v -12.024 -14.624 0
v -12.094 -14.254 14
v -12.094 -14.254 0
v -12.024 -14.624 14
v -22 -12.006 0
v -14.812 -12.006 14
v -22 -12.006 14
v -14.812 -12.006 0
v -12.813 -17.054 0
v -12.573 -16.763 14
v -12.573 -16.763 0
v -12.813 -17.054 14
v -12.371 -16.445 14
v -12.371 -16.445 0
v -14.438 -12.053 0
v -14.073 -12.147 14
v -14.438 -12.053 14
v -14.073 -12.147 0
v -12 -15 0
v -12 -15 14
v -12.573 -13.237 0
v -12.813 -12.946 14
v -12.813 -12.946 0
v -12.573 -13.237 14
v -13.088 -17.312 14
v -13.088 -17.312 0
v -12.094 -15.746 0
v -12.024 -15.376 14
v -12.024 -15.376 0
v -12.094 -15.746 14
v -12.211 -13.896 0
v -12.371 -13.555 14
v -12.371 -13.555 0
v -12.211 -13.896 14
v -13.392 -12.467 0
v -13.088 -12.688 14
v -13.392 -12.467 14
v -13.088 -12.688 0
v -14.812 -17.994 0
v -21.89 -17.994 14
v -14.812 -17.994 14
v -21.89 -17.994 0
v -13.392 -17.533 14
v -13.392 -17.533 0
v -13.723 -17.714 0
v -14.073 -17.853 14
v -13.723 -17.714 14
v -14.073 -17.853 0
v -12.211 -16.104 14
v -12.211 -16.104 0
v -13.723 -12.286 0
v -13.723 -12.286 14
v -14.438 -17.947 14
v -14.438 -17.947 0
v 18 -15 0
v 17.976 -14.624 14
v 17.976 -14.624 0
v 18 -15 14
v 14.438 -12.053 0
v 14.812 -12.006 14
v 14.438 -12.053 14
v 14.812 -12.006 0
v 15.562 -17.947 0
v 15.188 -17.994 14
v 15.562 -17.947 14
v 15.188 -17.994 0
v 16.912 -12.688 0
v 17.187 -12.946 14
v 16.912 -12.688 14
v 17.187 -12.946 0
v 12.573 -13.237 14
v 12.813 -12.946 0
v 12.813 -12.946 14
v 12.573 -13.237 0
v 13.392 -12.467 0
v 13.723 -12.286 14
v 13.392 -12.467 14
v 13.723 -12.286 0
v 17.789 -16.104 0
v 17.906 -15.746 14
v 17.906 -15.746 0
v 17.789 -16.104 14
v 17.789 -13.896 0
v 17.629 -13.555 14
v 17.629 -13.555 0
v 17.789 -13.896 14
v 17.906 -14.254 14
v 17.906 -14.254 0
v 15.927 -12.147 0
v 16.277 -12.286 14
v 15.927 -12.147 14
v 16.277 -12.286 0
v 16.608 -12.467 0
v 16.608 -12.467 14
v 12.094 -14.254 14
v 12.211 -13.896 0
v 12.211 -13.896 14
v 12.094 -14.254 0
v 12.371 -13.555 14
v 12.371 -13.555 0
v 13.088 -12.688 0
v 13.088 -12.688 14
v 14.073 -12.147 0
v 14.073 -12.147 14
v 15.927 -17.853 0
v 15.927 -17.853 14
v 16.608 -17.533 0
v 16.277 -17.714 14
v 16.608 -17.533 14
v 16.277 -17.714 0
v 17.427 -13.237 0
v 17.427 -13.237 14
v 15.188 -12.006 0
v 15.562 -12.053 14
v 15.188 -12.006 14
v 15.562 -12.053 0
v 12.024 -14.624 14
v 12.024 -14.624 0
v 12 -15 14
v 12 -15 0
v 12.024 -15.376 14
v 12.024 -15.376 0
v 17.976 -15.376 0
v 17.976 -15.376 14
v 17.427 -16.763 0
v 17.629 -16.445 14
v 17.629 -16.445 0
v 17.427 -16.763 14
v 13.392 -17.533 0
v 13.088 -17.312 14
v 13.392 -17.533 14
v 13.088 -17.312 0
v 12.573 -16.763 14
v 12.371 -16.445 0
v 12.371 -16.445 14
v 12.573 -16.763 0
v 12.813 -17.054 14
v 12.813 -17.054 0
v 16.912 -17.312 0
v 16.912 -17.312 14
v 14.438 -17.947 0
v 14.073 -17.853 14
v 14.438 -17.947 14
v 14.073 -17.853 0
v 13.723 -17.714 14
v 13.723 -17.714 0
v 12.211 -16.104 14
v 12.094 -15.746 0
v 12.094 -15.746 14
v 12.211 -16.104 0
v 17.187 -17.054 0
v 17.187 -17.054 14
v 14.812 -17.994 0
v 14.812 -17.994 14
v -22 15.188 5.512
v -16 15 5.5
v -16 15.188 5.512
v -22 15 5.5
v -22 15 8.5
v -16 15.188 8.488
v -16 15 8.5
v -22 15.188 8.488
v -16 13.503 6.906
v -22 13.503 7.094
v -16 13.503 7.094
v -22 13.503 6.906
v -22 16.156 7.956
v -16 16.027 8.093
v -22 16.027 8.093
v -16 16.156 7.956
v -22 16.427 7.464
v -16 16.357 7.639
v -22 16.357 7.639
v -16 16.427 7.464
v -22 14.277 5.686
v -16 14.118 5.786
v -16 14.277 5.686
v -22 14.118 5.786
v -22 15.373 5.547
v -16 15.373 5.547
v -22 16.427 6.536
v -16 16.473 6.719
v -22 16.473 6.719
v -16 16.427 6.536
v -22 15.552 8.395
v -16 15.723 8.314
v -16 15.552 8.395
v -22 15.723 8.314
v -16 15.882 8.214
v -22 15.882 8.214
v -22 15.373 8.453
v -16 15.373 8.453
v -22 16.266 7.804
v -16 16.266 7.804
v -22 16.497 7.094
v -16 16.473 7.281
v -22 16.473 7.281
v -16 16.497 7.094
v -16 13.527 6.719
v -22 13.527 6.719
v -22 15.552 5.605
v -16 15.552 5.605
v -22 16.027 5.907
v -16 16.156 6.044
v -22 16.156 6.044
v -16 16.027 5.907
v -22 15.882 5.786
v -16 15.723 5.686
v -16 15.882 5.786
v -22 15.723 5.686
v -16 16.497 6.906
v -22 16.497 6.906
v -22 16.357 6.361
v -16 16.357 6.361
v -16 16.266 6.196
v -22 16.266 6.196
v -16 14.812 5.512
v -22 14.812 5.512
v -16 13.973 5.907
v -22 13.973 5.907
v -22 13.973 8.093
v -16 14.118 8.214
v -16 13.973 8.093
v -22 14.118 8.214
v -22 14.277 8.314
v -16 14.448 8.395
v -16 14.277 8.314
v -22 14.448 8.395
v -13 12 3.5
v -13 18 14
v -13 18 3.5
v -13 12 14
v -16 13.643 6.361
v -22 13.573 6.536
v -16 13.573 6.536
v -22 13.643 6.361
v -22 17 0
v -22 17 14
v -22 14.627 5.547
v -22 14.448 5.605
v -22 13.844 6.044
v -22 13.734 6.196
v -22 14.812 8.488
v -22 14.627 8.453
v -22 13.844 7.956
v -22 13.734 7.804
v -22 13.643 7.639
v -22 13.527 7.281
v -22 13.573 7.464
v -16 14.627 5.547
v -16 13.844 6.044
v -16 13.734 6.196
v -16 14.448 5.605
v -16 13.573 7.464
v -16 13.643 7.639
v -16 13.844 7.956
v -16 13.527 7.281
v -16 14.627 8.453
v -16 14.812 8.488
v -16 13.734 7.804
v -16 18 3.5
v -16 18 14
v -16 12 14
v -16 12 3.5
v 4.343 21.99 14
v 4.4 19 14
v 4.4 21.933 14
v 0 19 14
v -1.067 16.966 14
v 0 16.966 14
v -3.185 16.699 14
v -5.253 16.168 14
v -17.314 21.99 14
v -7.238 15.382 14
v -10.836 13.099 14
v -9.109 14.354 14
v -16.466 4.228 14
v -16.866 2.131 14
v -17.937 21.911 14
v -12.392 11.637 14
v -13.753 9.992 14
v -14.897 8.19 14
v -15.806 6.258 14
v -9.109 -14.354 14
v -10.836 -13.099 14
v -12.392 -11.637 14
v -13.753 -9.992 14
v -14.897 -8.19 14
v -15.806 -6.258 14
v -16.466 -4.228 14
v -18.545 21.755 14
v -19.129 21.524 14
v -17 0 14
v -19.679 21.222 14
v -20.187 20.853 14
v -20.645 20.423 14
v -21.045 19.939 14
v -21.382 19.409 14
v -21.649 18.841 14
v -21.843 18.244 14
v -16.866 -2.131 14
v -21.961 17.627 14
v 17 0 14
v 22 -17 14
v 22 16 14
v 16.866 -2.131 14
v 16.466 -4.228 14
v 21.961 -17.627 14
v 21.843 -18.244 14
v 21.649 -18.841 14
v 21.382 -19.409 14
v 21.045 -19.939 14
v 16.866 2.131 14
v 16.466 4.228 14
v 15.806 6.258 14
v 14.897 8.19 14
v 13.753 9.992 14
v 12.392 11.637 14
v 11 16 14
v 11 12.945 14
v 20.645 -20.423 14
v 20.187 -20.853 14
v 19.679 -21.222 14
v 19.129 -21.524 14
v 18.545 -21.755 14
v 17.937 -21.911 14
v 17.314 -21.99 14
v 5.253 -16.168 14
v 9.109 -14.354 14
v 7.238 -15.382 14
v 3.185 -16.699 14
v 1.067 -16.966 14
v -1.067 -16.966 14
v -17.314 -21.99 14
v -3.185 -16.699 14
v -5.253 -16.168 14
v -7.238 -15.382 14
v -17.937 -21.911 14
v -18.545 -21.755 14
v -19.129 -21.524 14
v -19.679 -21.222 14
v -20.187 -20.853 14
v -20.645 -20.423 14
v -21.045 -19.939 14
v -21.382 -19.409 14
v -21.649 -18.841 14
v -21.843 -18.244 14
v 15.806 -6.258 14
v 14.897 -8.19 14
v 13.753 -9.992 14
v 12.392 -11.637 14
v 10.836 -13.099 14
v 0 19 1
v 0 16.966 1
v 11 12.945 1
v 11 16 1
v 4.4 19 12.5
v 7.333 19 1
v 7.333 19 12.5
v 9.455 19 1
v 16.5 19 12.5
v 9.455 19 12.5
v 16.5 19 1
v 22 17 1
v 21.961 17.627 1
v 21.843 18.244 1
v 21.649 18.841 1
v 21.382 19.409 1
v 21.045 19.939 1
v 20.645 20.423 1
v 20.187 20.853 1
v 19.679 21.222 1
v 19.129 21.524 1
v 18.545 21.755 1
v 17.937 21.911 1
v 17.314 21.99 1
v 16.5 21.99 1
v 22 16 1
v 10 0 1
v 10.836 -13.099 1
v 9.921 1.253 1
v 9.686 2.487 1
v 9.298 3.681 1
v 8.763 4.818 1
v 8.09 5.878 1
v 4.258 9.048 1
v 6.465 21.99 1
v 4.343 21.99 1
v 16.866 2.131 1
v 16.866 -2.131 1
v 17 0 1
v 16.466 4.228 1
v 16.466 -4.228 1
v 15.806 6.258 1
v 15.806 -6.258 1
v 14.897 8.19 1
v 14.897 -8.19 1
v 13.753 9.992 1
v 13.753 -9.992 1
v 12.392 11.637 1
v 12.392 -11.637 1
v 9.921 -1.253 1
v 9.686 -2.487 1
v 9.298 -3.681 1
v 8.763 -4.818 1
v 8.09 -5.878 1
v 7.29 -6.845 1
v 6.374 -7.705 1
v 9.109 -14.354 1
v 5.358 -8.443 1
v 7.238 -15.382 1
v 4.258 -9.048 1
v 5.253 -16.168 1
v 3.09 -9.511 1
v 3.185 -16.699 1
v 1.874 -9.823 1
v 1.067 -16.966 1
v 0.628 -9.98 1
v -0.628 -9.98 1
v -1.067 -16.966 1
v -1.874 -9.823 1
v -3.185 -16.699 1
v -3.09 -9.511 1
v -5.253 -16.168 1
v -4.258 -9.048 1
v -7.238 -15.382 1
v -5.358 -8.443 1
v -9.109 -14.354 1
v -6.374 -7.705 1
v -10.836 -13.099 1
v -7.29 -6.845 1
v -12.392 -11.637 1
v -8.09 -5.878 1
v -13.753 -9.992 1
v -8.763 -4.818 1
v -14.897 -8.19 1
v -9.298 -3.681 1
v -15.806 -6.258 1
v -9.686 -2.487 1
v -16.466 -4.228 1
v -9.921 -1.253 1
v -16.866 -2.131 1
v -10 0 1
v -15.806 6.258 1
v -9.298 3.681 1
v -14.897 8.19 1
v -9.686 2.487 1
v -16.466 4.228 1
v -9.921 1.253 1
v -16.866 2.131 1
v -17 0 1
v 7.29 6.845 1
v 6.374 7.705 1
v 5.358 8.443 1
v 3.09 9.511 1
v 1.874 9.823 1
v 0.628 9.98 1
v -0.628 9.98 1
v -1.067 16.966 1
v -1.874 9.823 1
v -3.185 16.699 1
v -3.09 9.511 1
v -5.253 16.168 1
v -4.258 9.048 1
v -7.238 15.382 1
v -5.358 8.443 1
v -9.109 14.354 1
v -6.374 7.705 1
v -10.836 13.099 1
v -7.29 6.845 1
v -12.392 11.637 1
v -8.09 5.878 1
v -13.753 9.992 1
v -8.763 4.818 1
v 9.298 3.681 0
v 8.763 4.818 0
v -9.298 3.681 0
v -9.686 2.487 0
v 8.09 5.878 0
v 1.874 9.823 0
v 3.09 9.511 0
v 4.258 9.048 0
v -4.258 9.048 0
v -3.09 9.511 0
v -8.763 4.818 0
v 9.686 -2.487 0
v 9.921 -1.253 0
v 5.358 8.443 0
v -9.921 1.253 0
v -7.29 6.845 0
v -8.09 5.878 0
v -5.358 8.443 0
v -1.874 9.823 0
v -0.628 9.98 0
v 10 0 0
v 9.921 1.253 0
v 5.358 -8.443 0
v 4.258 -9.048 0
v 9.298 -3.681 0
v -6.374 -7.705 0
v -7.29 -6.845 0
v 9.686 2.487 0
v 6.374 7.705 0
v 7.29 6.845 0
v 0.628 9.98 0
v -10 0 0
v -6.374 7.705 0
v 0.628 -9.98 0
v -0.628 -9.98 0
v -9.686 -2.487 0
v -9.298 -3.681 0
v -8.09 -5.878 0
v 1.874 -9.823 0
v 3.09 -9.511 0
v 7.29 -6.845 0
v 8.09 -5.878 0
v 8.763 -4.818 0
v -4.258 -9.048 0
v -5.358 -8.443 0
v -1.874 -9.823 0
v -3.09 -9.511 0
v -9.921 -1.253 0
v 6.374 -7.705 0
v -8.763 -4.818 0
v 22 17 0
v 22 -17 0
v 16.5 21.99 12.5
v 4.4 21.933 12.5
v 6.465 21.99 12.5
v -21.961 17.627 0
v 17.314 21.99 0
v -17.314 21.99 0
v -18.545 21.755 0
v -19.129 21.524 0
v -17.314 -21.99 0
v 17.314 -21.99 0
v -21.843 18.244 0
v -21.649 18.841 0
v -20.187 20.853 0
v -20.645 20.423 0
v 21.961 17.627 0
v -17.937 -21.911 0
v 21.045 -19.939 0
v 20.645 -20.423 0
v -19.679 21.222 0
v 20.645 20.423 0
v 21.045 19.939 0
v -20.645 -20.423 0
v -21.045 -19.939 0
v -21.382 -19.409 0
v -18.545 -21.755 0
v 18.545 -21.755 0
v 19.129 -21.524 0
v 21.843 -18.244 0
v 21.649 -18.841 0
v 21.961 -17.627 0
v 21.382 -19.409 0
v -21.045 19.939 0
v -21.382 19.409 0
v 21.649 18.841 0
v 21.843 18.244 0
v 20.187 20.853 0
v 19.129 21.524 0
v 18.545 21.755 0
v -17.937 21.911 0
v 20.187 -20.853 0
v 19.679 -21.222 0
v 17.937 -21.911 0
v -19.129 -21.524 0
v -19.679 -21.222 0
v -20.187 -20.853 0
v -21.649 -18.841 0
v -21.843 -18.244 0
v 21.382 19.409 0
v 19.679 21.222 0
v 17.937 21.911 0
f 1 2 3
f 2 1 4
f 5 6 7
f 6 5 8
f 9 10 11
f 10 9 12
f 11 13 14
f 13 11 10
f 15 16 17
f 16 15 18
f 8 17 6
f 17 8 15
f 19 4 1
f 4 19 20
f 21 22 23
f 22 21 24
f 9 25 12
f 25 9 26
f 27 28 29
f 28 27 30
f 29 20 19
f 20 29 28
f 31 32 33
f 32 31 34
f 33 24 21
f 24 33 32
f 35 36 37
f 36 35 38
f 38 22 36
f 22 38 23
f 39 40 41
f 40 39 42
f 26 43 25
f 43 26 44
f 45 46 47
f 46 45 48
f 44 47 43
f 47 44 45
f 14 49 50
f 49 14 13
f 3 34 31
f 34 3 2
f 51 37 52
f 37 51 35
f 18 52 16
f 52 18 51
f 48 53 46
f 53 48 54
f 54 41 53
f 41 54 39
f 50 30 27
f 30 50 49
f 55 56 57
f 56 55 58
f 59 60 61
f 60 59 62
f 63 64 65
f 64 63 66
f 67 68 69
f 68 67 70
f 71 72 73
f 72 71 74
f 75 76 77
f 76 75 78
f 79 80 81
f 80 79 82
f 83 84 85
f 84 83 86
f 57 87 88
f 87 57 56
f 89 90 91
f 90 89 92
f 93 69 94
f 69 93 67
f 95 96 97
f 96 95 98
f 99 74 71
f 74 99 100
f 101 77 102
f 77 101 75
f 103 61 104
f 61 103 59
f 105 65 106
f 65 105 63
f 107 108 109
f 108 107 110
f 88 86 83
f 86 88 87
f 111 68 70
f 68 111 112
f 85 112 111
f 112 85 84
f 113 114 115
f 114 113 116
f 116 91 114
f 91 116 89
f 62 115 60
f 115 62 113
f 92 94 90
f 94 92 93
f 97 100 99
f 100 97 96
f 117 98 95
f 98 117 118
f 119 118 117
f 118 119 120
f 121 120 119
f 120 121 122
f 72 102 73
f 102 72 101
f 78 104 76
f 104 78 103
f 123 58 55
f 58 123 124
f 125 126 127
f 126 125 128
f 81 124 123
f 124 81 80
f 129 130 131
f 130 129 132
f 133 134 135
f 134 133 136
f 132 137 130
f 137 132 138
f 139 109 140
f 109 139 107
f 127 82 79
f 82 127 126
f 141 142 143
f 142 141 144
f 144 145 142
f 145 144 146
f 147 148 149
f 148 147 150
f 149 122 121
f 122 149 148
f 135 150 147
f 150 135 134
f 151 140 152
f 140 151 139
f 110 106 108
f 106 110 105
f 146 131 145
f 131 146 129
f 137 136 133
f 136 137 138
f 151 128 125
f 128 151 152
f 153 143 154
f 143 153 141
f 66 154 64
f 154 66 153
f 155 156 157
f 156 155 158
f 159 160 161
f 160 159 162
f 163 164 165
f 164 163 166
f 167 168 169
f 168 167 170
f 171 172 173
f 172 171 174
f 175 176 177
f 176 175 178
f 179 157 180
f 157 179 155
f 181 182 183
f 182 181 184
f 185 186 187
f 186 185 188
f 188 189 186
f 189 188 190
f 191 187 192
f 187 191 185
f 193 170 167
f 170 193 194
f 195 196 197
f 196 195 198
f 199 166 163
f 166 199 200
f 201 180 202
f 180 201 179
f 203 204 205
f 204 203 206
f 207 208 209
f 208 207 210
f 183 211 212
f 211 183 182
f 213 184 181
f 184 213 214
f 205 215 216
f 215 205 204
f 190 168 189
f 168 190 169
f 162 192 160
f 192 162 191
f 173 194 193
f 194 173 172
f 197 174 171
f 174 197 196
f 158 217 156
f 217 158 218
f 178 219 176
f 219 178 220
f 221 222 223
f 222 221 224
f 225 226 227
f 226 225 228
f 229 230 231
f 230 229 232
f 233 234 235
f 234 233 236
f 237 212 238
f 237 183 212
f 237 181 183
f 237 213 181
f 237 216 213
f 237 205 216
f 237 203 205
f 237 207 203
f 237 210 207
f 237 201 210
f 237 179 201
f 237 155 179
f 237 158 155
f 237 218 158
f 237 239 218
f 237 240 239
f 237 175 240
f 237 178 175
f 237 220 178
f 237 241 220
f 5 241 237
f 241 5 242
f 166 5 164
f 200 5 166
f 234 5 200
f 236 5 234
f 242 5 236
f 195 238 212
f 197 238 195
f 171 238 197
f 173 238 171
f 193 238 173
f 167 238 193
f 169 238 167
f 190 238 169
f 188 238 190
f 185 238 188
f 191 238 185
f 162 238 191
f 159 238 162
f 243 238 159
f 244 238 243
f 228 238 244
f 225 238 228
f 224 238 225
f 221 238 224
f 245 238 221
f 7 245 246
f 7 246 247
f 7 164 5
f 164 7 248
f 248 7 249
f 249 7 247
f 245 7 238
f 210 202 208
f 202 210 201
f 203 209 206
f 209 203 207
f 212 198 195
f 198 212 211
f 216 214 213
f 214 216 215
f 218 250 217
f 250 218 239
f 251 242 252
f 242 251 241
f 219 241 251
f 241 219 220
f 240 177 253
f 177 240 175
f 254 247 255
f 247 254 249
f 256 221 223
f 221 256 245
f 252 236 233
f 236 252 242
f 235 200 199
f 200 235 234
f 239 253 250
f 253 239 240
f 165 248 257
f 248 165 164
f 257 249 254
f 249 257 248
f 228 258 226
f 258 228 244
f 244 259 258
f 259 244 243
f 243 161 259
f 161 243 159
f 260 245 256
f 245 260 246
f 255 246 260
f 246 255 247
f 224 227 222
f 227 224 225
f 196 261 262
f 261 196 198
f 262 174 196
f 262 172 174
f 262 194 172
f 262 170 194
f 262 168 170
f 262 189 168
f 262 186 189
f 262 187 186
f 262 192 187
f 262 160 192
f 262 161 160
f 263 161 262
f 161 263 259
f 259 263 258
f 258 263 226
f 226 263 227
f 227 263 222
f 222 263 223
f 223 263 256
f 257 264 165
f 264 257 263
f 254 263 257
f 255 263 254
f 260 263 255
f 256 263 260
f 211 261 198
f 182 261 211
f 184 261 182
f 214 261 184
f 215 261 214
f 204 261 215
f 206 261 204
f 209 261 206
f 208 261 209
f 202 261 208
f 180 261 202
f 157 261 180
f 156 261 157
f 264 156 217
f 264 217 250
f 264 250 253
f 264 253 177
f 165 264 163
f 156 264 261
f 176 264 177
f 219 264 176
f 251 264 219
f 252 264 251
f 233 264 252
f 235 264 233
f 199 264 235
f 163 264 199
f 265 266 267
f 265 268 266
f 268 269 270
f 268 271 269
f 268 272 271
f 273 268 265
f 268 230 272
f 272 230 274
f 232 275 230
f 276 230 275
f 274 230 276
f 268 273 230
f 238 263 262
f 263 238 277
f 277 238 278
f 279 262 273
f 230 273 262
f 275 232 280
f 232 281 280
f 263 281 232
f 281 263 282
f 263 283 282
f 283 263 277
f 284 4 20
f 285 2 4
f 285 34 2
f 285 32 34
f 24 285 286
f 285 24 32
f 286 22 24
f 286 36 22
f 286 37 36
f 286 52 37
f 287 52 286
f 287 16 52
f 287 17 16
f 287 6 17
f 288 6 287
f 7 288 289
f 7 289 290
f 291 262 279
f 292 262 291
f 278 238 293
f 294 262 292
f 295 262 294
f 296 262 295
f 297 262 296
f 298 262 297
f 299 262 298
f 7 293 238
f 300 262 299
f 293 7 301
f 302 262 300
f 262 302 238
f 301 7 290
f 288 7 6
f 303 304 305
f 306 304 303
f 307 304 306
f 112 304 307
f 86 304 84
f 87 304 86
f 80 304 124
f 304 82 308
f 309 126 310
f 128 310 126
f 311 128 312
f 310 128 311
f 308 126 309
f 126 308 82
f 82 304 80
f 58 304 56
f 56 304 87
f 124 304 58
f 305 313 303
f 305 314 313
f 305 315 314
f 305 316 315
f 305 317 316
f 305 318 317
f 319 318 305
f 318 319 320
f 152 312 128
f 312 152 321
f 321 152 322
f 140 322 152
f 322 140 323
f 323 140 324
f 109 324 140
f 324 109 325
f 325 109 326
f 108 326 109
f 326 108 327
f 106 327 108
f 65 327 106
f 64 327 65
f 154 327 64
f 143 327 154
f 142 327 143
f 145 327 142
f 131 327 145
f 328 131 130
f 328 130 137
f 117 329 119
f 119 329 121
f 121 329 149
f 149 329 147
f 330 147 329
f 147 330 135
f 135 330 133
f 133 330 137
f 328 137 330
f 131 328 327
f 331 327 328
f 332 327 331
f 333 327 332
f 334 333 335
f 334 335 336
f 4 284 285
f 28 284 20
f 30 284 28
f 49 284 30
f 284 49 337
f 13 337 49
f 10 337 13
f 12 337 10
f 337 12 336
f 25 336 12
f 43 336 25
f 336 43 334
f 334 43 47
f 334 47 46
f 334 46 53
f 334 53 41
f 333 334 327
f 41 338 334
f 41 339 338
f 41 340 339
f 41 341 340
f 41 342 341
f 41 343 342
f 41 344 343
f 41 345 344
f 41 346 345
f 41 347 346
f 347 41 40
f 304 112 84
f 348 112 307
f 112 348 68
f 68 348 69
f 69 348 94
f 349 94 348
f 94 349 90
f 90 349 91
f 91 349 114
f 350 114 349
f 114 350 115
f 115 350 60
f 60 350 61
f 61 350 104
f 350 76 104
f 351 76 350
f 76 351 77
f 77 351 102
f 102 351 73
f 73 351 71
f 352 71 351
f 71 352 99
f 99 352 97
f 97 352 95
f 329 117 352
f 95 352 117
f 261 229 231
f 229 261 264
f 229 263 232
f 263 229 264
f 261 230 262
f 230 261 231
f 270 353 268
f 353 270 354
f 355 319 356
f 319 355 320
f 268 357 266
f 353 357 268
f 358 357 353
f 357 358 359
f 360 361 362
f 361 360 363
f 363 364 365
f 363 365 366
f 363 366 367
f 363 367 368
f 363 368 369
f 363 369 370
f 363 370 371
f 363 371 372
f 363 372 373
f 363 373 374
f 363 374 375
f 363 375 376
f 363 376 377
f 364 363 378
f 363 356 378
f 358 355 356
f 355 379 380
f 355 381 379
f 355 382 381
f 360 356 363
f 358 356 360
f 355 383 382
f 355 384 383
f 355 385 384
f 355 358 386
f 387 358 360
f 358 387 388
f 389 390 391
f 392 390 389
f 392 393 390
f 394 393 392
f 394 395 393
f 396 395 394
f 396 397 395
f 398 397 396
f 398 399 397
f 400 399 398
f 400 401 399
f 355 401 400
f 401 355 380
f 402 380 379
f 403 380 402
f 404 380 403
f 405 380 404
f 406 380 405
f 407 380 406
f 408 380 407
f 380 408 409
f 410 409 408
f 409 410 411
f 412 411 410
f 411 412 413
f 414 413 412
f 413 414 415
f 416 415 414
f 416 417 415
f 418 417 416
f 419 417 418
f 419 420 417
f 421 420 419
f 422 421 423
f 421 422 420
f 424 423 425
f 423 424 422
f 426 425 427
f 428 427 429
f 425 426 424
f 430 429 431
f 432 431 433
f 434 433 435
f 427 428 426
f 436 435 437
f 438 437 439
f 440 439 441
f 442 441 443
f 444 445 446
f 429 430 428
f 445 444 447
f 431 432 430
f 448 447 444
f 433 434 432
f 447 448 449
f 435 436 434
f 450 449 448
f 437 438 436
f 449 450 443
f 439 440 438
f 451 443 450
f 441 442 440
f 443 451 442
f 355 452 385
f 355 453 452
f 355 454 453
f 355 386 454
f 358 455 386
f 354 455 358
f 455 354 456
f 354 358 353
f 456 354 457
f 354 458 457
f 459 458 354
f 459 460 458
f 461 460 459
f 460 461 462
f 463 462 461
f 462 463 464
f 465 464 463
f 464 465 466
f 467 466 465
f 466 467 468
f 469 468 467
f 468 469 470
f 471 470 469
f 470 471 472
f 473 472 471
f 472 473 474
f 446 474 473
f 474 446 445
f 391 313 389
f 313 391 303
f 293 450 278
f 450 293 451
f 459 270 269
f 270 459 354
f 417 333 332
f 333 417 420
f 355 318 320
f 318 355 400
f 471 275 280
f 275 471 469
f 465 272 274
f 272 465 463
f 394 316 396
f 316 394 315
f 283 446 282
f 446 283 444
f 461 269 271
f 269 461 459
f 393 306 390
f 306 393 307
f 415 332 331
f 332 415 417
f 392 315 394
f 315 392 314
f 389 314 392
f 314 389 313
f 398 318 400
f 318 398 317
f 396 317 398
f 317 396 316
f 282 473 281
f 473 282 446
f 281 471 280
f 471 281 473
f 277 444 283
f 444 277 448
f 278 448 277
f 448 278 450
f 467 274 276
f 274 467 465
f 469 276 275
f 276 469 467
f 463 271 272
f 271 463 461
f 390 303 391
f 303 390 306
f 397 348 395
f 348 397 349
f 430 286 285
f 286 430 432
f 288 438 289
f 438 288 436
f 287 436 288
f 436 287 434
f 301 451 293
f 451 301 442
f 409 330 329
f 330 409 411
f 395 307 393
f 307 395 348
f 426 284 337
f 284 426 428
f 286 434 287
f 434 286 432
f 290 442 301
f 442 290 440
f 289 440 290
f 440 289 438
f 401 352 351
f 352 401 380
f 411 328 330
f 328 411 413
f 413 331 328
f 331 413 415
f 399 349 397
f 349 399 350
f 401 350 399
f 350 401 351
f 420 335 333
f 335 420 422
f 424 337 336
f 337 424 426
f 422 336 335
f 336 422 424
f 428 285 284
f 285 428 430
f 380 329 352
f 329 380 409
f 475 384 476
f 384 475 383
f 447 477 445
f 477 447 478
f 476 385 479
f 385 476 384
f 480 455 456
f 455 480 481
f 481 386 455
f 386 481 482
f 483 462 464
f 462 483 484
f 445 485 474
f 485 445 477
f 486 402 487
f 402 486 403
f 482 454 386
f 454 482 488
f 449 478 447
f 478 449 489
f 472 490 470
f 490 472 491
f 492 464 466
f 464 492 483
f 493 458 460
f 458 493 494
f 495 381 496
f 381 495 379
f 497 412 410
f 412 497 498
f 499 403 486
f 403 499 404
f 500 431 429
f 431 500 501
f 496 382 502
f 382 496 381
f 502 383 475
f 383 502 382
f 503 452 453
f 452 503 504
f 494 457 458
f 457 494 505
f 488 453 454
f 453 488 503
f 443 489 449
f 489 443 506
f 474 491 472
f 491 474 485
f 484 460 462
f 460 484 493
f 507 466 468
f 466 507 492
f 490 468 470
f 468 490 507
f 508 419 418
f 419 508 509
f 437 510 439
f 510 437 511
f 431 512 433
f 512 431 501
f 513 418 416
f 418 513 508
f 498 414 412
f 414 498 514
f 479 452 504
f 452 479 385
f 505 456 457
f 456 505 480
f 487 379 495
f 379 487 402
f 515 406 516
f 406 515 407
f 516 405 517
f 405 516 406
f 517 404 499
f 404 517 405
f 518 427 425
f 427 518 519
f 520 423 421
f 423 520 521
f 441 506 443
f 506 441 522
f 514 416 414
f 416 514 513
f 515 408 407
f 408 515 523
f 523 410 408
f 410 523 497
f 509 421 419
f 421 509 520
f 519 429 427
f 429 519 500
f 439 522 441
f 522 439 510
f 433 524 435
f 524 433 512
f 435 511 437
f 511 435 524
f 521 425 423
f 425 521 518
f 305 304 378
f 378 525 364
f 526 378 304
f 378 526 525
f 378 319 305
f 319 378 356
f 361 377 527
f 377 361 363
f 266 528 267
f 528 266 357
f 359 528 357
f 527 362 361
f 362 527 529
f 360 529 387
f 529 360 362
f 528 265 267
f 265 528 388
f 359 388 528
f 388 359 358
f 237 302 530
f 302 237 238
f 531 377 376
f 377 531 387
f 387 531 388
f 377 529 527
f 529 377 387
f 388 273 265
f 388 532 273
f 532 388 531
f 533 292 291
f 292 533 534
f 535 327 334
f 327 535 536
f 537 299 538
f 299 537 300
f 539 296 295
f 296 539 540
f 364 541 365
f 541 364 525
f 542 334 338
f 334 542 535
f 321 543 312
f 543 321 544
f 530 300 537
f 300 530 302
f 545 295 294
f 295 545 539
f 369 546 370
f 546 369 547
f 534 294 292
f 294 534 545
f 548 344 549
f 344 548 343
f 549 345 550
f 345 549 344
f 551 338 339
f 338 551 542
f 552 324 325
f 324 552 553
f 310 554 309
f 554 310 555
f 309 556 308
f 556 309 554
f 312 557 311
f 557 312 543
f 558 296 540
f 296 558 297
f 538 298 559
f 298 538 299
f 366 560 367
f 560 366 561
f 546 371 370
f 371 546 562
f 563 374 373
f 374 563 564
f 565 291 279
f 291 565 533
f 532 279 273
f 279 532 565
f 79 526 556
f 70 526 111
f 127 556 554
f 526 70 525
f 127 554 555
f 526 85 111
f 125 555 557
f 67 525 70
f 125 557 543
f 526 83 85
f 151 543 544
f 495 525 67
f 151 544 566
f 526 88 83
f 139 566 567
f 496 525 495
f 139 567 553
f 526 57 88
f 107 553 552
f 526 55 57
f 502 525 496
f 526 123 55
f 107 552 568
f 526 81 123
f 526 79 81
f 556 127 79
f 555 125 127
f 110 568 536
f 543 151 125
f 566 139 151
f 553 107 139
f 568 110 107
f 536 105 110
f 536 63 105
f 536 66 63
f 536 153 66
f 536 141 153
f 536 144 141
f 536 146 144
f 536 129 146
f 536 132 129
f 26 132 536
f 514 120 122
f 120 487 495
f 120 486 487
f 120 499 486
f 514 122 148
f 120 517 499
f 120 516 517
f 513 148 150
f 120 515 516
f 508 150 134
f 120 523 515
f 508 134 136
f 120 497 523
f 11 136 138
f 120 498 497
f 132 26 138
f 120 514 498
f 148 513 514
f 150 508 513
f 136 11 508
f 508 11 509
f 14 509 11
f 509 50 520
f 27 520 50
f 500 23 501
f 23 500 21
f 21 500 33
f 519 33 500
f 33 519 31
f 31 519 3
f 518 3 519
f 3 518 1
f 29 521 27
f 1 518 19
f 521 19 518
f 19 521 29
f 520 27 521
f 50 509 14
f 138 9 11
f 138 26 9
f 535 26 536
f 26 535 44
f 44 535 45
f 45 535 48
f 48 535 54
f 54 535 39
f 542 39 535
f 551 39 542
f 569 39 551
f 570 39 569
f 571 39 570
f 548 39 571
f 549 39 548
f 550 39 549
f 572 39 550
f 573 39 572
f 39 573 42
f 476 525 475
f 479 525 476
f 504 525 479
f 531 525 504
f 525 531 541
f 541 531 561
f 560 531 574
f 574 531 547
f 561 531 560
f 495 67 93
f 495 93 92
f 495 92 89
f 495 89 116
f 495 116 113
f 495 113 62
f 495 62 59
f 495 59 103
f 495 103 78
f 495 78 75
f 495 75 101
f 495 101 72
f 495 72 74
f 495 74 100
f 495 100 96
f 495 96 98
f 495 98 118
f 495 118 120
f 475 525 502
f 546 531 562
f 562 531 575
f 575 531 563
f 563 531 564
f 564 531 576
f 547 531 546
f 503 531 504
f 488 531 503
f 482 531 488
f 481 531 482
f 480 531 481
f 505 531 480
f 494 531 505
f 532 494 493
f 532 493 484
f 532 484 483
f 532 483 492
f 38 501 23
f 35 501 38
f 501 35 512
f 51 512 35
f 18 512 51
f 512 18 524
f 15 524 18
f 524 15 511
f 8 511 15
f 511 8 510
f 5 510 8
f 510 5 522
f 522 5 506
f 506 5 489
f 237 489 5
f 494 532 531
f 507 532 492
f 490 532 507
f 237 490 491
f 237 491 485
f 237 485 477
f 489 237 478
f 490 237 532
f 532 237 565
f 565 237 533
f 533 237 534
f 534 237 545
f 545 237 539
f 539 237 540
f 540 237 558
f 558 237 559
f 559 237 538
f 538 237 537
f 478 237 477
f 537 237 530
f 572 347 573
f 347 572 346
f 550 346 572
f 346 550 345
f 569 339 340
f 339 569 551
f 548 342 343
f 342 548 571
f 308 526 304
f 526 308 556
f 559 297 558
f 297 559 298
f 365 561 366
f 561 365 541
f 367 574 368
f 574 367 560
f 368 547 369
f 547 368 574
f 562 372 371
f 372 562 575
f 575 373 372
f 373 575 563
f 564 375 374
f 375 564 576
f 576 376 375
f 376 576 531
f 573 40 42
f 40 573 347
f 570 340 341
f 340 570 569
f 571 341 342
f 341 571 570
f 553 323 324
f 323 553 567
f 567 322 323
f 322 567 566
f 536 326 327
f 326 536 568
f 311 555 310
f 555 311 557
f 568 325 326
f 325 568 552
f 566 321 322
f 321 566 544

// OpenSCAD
$fn = 50;


difference() {
	union() {
		translate(v = [0, 0, 0]) {
			rotate(a = [0, 0, 0]) {
				hull() {
					translate(v = [-17.0000000000, 17.0000000000, 0]) {
						rotate(a = [0, 0, 0]) {
							translate(v = [0, 0, 0]) {
								rotate(a = [0, 0, 0]) {
									cylinder(h = 14, r = 5);
								}
							}
						}
					}
					translate(v = [17.0000000000, 17.0000000000, 0]) {
						rotate(a = [0, 0, 0]) {
							translate(v = [0, 0, 0]) {
								rotate(a = [0, 0, 0]) {
									cylinder(h = 14, r = 5);
								}
							}
						}
					}
					translate(v = [-17.0000000000, -17.0000000000, 0]) {
						rotate(a = [0, 0, 0]) {
							translate(v = [0, 0, 0]) {
								rotate(a = [0, 0, 0]) {
									cylinder(h = 14, r = 5);
								}
							}
						}
					}
					translate(v = [17.0000000000, -17.0000000000, 0]) {
						rotate(a = [0, 0, 0]) {
							translate(v = [0, 0, 0]) {
								rotate(a = [0, 0, 0]) {
									cylinder(h = 14, r = 5);
								}
							}
						}
					}
				}
			}
		}
	}
	union() {
		translate(v = [-22.5000000000, -15.0000000000, -125]) {
			rotate(a = [0, 0, 0]) {
				hull() {
					translate(v = [7.5000000000, 0, 0]) {
						rotate(a = [0, 0, 0]) {
							translate(v = [0, 0, 0]) {
								rotate(a = [0, 0, 0]) {
									cylinder(h = 250, r = 3.0000000000);
								}
							}
						}
					}
					translate(v = [-7.5000000000, 0, 0]) {
						rotate(a = [0, 0, 0]) {
							translate(v = [0, 0, 0]) {
								rotate(a = [0, 0, 0]) {
									cylinder(h = 250, r = 3.0000000000);
								}
							}
						}
					}
				}
			}
		}
		translate(v = [15.0000000000, -15.0000000000, -125.0000000000]) {
			rotate(a = [0, 0, 0]) {
				cylinder(h = 250, r = 3.0000000000);
			}
		}
		translate(v = [-22.0000000000, 15.0000000000, 7.0000000000]) {
			rotate(a = [0, 90, 0]) {
				cylinder(h = 9, r = 1.5000000000);
			}
		}
		translate(v = [-16.0000000000, 12.0000000000, 3.5000000000]) {
			rotate(a = [0, 0, 0]) {
				cube(size = [3, 6, 10.5000000000]);
			}
		}
		translate(v = [0.0000000000, 11.0000000000, 1.0000000000]) {
			rotate(a = [0, 0, 0]) {
				cube(size = [11, 8, 16]);
			}
		}
		translate(v = [0, 0, 1.0000000000]) {
			rotate(a = [0, 0, 0]) {
				cylinder(h = 16, r = 17.0000000000);
			}
		}
		translate(v = [0, 0, -7.0000000000]) {
			rotate(a = [0, 0, 0]) {
				cylinder(h = 14, r = 10.0000000000);
			}
		}
		translate(v = [0.0000000000, 16.0000000000, 1]) {
			rotate(a = [0, 0, 0]) {
				cube(size = [22.0000000000, 3, 16]);
			}
		}
		translate(v = [16.5000000000, 16.0000000000, 1]) {
			rotate(a = [0, 0, 0]) {
				cube(size = [5.5000000000, 6, 16]);
			}
		}
		translate(v = [4.4000000000, 16.0000000000, 12.5000000000]) {
			rotate(a = [0, 0, 0]) {
				cube(size = [17.6000000000, 6, 1.5000000000]);
			}
		}
		translate(v = [3.5833333333, 22.7500000000, 1]) {
			rotate(a = [0, 0, -45]) {
				cube(size = [7.5000000000, 1.5000000000, 16]);
			}
		}
	}
}
